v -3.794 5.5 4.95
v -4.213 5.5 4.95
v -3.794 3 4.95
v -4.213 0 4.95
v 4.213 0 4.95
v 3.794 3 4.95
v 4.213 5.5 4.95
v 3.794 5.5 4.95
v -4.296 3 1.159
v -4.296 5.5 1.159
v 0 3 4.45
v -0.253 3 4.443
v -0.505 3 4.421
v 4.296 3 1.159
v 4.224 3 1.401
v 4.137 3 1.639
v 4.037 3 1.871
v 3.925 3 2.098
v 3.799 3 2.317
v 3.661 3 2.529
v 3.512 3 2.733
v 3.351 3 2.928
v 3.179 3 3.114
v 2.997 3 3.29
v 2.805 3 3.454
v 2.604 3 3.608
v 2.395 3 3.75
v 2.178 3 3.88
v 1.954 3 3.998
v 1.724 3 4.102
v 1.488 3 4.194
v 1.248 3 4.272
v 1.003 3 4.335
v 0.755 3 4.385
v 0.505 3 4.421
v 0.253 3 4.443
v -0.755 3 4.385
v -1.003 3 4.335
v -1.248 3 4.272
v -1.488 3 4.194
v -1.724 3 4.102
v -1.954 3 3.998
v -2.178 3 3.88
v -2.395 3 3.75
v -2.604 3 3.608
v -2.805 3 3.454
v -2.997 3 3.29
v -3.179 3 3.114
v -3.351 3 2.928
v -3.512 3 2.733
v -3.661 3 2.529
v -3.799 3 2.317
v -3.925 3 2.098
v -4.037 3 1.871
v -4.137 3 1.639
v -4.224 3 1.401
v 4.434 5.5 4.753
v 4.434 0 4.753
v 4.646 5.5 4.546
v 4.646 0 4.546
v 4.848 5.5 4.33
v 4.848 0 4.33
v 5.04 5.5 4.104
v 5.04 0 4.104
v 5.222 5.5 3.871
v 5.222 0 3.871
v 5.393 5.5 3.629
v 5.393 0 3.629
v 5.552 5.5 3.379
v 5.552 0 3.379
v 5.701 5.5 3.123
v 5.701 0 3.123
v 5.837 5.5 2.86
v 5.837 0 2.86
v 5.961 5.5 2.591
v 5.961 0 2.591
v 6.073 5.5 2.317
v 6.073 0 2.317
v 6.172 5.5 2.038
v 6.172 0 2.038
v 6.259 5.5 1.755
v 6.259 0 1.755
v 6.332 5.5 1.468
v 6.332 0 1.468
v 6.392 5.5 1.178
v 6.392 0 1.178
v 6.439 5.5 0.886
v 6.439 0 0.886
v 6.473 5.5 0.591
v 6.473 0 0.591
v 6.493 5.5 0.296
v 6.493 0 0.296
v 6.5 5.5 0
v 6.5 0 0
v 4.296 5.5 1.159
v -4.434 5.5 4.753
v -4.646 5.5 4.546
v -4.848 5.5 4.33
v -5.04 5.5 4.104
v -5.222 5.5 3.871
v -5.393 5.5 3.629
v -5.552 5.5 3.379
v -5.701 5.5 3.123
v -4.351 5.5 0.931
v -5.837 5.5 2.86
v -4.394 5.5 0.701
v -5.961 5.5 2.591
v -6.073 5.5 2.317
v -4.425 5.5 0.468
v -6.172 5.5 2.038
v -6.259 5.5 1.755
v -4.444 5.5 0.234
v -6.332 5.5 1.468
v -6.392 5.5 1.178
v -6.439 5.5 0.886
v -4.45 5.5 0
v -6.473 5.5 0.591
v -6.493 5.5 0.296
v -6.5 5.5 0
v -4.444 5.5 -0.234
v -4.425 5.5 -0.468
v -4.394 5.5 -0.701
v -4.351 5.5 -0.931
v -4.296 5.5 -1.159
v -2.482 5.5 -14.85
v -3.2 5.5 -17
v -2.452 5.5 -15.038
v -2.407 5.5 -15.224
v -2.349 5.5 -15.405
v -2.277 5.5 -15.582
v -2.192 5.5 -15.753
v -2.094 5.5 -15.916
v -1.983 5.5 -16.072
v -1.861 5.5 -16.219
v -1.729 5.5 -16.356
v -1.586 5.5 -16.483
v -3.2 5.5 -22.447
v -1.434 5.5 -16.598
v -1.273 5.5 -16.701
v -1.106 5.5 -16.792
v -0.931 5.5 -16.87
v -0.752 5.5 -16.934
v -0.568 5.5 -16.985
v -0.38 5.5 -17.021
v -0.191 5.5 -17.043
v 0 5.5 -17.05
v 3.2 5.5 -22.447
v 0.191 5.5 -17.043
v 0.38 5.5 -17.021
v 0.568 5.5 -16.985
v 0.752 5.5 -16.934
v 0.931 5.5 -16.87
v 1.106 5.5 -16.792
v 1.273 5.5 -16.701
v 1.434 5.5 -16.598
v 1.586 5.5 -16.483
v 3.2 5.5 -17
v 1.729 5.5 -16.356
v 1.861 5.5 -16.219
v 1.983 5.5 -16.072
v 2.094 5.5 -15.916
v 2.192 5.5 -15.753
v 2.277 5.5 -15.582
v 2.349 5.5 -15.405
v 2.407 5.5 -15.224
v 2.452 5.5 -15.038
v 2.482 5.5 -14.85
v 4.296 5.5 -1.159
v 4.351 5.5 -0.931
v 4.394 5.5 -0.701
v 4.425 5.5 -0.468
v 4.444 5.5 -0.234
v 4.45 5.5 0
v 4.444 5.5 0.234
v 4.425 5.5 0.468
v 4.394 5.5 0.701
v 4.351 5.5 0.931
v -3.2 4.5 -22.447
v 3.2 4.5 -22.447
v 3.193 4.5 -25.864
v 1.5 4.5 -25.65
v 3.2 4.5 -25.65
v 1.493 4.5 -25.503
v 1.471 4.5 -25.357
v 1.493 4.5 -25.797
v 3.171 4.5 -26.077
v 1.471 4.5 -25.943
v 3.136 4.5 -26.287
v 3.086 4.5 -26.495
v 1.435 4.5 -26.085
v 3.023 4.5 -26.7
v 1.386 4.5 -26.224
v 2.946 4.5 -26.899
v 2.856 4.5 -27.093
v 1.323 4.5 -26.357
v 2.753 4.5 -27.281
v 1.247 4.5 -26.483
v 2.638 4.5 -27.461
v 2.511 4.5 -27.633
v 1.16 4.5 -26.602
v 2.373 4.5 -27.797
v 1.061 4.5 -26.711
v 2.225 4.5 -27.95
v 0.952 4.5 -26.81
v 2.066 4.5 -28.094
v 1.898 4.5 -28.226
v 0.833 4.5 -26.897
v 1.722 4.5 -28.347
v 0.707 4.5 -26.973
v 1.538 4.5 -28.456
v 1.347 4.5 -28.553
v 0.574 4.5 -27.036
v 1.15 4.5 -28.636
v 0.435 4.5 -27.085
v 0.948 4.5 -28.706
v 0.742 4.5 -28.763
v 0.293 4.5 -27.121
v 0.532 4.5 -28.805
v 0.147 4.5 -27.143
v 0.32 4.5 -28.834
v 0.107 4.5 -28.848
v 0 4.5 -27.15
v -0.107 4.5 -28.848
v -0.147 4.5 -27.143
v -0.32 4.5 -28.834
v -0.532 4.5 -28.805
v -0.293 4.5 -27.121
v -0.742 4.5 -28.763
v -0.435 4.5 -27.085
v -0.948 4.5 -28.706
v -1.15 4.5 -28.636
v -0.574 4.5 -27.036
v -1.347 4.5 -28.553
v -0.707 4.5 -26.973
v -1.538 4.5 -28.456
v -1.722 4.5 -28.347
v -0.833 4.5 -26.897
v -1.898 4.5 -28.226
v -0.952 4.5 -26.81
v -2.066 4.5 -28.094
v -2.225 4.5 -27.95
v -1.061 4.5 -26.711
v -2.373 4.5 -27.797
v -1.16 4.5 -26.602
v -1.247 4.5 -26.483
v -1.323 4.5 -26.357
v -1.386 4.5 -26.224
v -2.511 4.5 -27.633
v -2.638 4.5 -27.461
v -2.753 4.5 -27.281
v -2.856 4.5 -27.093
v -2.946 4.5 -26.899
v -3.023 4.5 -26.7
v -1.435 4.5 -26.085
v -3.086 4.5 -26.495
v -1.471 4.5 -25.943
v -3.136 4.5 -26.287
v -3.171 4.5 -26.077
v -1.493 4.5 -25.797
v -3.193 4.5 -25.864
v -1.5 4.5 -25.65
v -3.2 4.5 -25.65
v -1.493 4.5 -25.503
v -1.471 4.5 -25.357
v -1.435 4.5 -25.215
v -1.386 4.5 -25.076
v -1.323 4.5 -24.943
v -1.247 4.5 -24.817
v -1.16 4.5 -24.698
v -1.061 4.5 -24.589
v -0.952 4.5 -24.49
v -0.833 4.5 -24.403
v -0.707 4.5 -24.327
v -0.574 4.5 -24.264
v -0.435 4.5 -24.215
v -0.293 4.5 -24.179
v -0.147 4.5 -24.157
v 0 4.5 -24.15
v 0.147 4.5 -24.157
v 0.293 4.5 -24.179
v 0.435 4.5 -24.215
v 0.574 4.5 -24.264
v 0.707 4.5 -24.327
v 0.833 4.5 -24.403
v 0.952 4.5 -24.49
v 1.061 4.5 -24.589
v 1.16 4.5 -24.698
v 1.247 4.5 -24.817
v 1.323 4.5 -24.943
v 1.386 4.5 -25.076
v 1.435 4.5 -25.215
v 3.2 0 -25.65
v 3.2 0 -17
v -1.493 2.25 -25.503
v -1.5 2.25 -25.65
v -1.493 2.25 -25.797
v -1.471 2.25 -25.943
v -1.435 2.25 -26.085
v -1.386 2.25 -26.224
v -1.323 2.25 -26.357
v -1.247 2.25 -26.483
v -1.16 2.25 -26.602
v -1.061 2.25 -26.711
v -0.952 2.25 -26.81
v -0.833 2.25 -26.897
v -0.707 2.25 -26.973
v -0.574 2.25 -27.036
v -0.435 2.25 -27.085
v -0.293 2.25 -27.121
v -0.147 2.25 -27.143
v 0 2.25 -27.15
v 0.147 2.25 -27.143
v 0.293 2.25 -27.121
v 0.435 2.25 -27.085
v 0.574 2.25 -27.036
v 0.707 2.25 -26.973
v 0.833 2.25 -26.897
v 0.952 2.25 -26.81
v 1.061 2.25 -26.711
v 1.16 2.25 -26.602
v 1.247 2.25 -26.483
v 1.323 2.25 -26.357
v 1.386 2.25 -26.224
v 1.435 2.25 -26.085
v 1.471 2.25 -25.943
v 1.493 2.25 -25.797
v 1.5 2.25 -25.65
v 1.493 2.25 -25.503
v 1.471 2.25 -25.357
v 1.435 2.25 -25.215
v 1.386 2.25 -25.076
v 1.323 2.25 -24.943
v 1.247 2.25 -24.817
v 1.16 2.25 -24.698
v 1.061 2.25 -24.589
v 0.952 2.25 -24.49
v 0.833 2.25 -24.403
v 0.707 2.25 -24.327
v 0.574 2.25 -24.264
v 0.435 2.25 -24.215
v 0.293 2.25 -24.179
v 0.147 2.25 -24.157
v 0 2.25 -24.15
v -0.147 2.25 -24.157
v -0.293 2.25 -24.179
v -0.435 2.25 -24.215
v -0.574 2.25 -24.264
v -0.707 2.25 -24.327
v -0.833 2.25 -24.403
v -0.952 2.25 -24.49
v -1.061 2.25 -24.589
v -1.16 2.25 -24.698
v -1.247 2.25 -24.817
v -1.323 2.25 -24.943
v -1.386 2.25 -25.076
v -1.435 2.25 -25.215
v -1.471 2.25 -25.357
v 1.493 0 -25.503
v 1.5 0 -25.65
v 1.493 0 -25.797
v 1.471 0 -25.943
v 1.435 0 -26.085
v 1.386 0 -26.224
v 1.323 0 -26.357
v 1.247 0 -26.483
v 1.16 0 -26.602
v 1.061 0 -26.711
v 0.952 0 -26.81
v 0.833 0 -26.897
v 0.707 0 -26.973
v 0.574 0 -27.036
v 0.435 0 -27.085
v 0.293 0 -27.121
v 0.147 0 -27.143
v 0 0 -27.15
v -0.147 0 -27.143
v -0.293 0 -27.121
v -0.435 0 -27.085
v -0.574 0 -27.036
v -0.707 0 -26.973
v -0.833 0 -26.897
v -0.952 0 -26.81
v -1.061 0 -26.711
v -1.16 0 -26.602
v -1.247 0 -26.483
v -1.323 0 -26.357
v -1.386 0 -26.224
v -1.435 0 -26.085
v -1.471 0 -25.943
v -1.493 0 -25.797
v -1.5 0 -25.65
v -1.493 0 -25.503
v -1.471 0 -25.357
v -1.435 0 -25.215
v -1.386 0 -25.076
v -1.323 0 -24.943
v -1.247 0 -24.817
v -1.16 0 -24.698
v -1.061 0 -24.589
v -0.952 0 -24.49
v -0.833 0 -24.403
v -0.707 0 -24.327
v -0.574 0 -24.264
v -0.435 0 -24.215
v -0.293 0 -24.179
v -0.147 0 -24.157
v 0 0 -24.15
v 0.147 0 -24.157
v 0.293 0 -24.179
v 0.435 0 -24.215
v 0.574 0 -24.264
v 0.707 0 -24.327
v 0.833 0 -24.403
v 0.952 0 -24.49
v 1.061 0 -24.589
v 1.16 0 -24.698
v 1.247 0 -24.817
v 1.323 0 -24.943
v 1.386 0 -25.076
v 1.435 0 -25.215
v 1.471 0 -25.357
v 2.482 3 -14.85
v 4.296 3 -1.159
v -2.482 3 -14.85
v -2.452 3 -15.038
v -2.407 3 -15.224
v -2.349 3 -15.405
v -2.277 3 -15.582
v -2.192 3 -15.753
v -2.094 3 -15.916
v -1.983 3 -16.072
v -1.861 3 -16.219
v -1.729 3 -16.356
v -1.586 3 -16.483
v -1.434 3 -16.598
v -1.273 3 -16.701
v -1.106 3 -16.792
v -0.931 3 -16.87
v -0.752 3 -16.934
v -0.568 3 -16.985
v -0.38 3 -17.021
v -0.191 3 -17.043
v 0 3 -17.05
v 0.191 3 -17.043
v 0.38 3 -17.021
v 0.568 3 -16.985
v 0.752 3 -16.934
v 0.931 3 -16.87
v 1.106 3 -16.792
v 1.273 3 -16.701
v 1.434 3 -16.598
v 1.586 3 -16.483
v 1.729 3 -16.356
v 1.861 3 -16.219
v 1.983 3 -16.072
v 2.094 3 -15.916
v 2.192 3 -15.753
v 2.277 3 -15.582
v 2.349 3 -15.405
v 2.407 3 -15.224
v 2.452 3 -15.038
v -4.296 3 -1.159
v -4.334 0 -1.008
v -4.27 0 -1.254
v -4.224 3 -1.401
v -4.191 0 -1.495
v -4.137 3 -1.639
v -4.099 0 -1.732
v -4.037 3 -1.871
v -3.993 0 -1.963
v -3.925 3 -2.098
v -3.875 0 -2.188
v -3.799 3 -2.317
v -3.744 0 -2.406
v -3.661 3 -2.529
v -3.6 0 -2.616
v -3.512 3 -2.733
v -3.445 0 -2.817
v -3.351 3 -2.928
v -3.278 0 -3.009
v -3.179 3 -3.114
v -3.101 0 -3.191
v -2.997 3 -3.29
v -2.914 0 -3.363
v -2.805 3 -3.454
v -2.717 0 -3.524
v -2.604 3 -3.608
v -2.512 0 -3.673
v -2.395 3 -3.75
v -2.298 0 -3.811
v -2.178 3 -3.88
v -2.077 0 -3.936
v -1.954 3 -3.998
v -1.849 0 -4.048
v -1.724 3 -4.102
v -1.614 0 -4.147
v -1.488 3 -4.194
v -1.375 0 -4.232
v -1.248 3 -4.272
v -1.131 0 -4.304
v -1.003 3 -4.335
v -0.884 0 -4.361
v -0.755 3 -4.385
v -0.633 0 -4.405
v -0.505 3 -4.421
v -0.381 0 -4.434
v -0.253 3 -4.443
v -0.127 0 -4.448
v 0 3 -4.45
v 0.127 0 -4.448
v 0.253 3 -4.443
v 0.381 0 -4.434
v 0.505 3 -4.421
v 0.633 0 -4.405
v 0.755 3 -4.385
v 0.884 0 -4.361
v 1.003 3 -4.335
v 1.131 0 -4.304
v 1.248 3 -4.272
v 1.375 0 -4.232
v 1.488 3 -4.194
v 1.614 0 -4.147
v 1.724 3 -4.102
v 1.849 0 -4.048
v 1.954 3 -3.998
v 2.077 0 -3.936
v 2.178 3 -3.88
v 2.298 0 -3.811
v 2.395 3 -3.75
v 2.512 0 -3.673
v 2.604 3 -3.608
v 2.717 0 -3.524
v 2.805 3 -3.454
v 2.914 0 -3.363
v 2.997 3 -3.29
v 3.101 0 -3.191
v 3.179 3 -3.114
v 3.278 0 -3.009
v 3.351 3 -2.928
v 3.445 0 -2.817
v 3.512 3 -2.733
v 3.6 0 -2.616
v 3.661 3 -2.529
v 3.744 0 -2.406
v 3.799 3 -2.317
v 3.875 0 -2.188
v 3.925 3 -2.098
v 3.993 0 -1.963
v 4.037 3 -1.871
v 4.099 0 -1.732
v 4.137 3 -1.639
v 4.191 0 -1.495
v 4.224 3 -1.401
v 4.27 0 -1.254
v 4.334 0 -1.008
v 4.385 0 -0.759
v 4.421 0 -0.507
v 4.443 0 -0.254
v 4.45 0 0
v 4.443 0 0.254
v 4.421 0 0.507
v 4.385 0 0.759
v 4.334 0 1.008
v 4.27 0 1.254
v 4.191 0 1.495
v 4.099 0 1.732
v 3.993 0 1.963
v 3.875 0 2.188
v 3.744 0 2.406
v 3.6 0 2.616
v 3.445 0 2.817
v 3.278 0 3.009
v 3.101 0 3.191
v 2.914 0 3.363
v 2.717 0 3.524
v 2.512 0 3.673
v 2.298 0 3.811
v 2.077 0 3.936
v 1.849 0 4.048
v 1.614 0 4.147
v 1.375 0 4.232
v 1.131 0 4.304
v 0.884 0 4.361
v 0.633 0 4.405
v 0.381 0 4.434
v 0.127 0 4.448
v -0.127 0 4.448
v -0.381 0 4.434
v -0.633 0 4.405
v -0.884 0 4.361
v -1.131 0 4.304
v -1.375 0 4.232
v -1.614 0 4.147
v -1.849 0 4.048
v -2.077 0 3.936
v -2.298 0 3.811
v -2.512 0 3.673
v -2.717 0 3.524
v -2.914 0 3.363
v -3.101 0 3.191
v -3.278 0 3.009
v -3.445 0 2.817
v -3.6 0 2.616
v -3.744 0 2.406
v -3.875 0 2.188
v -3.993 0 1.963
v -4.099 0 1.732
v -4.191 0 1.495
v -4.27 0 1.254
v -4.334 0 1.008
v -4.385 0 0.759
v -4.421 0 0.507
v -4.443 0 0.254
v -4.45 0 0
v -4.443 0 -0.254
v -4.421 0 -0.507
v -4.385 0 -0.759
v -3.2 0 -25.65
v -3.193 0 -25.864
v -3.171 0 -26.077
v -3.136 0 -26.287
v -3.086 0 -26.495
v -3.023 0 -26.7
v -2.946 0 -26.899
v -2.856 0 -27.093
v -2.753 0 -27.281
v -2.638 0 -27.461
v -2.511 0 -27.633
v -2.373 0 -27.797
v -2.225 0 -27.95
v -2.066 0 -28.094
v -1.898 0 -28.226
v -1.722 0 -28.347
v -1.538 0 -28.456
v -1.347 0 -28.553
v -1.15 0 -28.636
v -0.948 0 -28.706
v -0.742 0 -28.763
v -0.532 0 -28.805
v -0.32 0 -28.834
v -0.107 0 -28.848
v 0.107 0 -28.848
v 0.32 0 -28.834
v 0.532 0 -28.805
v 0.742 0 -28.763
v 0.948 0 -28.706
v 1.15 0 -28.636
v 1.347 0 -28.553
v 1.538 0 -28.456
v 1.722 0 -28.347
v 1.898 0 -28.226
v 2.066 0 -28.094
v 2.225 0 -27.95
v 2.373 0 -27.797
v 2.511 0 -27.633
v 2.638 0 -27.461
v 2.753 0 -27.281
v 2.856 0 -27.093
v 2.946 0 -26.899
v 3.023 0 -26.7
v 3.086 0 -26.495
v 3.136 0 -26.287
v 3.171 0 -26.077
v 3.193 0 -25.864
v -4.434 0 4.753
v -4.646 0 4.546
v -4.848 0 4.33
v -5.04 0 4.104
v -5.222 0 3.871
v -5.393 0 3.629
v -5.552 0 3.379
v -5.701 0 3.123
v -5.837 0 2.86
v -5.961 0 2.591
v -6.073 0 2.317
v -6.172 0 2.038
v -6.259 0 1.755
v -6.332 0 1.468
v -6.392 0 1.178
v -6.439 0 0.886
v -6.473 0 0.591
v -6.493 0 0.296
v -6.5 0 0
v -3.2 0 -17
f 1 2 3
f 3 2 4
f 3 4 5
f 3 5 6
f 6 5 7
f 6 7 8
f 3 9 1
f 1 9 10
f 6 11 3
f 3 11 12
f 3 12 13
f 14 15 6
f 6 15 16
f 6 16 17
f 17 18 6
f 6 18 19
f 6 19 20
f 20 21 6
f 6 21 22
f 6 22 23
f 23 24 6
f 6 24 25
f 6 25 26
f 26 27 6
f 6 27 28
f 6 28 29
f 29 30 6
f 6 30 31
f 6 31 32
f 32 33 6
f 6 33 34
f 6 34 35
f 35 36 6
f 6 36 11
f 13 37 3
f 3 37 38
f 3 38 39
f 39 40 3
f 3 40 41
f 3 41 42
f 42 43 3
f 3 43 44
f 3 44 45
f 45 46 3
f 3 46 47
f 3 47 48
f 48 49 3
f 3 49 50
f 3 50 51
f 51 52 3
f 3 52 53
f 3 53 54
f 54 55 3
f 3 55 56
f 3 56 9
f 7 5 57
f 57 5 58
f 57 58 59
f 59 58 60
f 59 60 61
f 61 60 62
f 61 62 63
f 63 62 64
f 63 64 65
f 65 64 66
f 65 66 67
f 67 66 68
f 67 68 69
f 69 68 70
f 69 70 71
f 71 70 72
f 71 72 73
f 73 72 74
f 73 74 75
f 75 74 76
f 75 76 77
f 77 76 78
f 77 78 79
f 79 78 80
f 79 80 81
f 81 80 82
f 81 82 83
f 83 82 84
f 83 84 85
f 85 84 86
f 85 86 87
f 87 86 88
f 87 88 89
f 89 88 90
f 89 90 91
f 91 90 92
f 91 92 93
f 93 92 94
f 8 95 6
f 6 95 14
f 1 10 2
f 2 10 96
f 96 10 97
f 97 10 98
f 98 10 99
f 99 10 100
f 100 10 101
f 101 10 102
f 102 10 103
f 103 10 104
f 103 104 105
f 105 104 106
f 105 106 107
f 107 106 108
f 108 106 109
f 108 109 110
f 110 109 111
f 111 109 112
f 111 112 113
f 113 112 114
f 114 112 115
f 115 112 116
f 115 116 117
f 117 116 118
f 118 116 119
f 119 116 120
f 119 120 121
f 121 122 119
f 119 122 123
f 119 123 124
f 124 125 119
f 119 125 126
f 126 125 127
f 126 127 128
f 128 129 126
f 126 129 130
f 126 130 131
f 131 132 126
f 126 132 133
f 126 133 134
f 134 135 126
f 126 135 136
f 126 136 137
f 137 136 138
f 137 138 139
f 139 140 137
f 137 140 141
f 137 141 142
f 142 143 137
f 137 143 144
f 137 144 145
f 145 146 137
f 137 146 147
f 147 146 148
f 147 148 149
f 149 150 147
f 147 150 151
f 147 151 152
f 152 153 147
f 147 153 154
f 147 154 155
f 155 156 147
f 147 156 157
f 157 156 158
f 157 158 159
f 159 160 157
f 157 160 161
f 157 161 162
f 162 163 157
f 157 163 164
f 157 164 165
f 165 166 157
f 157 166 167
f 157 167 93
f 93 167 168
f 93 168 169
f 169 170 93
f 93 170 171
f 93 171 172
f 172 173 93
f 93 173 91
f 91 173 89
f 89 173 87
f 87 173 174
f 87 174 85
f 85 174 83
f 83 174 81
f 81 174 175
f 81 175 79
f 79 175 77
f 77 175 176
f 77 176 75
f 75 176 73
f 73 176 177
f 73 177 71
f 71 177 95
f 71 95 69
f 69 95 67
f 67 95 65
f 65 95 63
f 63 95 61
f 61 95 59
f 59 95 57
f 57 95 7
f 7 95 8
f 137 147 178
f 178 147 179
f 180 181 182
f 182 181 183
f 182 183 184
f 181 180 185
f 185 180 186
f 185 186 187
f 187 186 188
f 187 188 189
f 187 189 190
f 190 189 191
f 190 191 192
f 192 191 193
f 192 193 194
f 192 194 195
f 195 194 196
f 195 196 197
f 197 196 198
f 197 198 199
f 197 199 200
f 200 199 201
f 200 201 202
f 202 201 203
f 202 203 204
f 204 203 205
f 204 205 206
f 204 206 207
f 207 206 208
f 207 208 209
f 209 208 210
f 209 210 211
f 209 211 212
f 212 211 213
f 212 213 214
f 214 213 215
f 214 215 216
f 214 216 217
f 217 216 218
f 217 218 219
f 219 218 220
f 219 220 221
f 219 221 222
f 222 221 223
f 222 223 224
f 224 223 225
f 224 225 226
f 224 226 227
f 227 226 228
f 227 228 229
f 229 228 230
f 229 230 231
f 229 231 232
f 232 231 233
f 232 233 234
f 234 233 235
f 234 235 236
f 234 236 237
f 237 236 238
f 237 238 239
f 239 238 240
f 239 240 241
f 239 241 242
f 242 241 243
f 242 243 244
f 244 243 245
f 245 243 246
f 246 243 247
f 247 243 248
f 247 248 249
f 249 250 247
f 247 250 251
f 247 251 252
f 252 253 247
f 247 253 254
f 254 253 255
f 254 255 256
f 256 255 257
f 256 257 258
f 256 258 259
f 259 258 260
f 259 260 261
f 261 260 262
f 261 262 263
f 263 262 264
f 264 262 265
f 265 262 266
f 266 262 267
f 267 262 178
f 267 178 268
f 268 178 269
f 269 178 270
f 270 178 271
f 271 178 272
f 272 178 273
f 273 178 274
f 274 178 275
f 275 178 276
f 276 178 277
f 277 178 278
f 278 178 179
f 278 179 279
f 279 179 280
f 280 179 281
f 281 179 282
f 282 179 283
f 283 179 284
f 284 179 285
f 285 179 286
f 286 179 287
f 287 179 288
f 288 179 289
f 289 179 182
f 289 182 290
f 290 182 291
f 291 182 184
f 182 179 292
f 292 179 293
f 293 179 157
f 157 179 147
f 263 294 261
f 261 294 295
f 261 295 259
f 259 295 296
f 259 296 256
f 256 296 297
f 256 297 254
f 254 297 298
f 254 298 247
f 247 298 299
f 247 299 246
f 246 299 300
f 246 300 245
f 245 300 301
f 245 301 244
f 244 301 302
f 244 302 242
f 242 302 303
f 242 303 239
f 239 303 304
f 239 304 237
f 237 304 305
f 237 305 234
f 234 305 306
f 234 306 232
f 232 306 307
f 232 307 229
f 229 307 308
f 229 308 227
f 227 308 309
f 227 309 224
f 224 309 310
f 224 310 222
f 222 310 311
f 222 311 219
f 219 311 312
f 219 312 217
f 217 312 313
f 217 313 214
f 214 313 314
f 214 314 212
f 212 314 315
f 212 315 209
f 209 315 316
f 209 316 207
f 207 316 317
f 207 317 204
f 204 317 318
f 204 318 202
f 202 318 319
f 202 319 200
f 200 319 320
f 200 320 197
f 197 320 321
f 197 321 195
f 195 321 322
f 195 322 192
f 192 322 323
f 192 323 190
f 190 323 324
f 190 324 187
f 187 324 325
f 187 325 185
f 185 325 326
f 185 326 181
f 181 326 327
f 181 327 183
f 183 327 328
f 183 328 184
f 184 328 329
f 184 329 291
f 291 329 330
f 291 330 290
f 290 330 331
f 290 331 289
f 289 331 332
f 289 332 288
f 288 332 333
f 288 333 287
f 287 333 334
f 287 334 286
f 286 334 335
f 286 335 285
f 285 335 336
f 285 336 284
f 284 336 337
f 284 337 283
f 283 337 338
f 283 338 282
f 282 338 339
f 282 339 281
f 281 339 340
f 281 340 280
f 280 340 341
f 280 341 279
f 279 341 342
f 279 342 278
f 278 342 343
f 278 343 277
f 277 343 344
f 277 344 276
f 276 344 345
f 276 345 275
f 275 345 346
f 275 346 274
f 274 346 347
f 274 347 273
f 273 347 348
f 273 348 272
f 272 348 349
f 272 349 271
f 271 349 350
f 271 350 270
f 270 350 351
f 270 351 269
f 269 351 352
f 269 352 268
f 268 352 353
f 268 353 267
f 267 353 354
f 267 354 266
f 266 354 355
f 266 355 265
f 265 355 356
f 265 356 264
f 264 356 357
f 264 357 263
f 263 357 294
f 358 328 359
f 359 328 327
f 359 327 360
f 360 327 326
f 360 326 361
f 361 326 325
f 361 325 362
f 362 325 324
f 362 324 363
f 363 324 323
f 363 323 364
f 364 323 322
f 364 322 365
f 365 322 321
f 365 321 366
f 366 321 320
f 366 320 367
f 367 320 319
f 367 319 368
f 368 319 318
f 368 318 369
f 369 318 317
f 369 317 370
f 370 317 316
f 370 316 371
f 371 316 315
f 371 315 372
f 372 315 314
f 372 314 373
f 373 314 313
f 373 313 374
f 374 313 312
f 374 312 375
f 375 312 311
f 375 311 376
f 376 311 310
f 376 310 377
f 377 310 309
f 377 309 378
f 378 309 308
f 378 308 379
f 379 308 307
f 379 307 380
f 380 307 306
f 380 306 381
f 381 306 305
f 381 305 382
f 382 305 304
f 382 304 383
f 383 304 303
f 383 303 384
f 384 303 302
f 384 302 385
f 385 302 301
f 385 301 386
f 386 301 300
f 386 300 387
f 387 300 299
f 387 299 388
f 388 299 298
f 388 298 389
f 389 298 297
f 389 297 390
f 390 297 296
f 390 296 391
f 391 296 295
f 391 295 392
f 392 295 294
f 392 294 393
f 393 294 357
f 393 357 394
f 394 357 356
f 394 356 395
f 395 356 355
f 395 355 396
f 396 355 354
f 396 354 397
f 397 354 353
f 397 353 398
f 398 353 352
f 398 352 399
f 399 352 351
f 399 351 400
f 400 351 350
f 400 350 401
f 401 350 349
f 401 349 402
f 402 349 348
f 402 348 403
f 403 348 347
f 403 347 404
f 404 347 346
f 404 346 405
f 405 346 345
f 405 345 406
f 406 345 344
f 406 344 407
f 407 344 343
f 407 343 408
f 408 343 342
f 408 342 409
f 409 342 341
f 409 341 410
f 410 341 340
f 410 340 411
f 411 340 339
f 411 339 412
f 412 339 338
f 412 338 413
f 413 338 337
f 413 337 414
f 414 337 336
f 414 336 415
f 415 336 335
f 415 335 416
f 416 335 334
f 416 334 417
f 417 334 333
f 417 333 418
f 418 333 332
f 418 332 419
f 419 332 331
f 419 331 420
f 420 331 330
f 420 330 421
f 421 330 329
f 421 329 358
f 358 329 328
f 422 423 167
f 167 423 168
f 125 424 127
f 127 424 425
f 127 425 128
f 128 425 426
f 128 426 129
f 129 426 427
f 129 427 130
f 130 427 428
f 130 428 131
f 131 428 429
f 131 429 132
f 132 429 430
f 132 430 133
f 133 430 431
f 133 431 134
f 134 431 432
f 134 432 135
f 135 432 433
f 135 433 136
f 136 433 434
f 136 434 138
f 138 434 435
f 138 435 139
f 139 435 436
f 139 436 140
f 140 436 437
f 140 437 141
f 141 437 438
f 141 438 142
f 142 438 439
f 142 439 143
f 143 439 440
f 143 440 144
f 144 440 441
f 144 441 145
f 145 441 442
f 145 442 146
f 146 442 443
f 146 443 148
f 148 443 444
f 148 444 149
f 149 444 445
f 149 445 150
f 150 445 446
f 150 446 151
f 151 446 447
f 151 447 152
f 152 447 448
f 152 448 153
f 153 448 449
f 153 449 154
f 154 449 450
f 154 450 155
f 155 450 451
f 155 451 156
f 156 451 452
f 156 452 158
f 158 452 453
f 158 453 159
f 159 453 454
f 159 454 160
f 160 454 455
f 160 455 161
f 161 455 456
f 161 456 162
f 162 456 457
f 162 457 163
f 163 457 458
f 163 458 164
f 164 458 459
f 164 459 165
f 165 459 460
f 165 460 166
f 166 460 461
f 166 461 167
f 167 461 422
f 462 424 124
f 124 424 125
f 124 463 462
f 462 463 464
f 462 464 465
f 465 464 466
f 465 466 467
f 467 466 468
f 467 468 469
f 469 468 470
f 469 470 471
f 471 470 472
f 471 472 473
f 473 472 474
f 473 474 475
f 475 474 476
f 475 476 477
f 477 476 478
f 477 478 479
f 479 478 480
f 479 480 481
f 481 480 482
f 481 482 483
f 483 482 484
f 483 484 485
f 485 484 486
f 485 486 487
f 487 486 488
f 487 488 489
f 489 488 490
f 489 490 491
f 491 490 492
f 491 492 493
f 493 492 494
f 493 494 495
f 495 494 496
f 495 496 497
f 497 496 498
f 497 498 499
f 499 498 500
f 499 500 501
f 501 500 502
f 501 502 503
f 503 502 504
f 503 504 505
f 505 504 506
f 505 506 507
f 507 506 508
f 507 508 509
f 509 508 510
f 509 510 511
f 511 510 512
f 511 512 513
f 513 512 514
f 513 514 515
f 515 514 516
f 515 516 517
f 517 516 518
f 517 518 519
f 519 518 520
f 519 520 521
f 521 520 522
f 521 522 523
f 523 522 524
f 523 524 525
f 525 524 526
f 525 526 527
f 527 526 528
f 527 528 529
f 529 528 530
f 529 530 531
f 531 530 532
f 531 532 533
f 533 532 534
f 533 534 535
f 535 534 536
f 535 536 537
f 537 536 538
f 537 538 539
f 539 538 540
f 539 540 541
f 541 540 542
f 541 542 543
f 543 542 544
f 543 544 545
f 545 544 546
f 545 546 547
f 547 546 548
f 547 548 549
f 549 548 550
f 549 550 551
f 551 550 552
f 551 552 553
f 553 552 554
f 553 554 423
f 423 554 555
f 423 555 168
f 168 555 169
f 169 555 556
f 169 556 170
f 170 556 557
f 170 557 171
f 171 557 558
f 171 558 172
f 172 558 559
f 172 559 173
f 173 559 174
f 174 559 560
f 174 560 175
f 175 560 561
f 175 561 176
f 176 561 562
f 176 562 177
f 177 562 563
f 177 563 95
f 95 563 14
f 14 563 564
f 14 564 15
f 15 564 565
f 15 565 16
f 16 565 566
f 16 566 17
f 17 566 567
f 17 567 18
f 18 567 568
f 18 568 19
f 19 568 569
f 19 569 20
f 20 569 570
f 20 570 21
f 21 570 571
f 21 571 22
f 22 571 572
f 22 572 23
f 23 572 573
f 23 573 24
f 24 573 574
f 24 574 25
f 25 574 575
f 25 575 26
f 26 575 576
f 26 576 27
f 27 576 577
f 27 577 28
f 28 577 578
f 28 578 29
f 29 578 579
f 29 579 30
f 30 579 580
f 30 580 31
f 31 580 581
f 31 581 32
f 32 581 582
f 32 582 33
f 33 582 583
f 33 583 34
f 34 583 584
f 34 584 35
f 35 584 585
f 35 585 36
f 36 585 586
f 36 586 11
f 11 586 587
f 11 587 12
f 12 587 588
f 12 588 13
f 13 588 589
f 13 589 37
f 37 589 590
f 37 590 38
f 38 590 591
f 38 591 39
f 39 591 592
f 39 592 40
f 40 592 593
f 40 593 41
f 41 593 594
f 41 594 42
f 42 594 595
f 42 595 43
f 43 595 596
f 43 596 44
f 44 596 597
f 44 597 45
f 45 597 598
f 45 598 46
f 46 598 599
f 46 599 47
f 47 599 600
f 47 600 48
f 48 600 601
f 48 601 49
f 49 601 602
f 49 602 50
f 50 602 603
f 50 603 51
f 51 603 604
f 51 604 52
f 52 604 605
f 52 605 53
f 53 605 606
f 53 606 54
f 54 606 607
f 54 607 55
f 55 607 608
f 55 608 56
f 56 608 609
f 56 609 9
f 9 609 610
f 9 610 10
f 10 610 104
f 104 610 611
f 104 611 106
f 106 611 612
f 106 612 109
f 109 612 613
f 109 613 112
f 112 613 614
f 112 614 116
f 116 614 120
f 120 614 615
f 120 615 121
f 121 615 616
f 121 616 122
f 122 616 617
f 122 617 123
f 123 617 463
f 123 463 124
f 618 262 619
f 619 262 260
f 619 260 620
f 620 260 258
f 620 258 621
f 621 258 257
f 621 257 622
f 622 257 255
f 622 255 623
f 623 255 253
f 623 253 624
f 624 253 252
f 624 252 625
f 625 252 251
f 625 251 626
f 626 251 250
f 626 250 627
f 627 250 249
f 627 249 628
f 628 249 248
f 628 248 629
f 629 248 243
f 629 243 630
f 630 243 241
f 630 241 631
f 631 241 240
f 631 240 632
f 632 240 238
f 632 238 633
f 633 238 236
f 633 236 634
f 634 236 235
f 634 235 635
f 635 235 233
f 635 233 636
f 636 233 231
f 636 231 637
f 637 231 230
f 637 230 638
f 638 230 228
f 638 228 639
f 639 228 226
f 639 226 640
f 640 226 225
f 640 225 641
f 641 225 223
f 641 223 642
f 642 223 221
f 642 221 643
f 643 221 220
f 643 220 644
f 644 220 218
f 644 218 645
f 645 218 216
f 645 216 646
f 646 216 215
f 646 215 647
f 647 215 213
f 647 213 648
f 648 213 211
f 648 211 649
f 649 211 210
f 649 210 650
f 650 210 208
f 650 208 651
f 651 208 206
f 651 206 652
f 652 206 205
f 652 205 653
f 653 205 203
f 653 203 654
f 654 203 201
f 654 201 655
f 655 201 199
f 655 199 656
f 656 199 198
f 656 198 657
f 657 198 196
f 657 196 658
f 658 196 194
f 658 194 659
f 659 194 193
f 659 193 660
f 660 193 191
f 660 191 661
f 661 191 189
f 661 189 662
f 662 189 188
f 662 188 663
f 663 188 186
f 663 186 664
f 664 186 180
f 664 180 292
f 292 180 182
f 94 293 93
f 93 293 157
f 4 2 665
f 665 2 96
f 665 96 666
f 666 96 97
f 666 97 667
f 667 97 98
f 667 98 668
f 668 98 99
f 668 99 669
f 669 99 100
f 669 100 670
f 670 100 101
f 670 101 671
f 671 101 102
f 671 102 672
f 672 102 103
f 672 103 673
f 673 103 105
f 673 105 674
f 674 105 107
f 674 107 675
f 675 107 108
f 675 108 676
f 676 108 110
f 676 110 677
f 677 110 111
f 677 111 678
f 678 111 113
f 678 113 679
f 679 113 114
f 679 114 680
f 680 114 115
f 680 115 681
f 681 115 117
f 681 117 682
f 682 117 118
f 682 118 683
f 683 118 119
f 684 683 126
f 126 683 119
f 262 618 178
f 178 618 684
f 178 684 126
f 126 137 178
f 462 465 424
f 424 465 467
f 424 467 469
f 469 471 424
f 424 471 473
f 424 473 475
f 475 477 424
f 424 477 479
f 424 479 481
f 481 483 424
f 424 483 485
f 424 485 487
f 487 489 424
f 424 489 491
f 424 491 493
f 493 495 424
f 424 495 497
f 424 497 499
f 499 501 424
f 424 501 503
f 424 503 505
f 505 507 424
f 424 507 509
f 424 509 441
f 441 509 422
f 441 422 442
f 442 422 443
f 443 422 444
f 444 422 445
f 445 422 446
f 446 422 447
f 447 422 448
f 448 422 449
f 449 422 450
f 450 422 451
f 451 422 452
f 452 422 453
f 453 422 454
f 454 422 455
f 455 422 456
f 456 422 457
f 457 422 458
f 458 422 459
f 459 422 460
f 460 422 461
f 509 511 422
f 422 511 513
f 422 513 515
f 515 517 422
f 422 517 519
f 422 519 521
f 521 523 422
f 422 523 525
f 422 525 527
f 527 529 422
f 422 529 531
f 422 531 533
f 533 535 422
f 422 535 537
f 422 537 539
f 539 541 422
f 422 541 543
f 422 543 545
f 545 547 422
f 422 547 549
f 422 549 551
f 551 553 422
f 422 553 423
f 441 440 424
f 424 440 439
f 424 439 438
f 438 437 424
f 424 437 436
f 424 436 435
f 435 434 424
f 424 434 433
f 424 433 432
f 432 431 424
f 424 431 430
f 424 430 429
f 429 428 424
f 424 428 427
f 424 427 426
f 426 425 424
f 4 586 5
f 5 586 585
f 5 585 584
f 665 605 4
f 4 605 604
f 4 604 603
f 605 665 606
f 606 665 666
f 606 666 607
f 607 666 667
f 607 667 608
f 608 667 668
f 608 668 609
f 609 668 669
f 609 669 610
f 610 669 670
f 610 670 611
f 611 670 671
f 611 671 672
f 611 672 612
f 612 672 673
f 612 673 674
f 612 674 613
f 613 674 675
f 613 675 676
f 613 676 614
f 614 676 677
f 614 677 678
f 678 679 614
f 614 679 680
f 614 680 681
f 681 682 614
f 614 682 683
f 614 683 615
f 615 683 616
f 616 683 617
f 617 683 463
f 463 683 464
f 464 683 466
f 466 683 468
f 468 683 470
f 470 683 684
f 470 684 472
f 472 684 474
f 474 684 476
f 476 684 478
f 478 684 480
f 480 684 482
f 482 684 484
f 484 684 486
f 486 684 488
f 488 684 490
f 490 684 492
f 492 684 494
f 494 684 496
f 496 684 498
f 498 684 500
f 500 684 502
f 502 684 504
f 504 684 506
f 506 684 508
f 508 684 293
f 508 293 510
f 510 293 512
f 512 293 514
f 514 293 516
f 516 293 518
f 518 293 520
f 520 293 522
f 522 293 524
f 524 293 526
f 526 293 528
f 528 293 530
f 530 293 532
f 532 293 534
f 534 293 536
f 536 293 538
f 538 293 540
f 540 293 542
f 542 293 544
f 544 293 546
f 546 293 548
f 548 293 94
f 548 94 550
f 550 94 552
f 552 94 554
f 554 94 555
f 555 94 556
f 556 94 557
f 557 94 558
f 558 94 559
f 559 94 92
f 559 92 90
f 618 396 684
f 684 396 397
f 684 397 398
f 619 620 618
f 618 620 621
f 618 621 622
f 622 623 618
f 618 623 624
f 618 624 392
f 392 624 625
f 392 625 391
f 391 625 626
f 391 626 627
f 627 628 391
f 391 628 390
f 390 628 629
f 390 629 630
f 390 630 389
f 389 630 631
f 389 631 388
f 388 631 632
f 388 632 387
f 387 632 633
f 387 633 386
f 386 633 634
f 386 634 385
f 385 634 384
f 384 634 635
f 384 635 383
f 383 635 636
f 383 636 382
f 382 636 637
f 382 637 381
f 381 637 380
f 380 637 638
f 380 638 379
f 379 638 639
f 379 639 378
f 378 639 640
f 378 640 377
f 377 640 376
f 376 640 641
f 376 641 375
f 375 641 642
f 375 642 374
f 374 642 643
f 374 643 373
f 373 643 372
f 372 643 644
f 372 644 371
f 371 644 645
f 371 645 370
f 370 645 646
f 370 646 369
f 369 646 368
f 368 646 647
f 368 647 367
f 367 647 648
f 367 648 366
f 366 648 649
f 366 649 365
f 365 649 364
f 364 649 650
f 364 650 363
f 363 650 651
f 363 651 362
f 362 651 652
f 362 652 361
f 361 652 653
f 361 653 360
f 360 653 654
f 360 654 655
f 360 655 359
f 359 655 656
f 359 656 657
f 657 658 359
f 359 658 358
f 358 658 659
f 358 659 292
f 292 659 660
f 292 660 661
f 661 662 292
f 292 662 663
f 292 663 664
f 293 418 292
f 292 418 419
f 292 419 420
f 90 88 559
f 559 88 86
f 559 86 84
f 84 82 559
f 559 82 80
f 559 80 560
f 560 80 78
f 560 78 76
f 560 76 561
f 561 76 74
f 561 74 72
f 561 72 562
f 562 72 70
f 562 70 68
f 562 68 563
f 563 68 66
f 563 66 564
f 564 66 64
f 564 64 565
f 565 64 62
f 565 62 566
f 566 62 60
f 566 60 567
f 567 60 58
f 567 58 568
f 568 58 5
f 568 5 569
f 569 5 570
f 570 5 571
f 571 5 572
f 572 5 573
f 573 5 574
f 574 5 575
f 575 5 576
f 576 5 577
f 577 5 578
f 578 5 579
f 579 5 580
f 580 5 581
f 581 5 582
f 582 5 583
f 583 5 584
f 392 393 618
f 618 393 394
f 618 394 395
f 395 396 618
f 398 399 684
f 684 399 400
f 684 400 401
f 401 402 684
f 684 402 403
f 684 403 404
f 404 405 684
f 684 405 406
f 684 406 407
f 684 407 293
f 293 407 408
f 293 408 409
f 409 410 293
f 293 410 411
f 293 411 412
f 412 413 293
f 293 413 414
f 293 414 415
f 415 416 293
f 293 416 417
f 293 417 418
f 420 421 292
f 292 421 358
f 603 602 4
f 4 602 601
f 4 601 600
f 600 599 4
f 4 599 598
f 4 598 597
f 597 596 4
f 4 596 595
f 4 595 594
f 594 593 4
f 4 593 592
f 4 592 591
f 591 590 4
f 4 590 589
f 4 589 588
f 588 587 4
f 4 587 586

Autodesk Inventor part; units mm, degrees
ref_plane "YZ Plane" through (0, 0, 0) normal (1, 0, 0) x (0, 1, 0)
ref_plane "XZ Plane" through (0, 0, 0) normal (0, 1, 0) x (-1, 0, 0)
ref_plane "XY Plane" through (0, 0, 0) normal (0, 0, 1) x (1, 0, 0)
sketch "Skizze1" plane through (0, 0, 0) normal (0, 1, 0) x (-1, 0, 0)
  circle A0 centre (0, 0) radius 4.45
  arc A1 (6.5, 0) -> (-6.5, 0) centre (0, 0) ccw
  line L0 (0, 0) -> (0, -17)
  line L1 (4, -14) -> (23.7753, -14) construction
  line L2 (0, 0) -> (0, -19.75)
  line L3 (0, 0) -> (0, -26.15)
  line L4 (0, 0) -> (0, -29.15)
  arc A2 (-3.2, -29.15) -> (3.2, -29.15) centre (0, -29.15) ccw
  line L5 (-3.2, -29.15) -> (-3.2, -24.95)
  line L6 (3.2, -29.15) -> (3.2, -26.15)
  line L7 (3.2, -26.15) -> (3.2, -17)
  line L8 (-3.2, -24.95) -> (-3.2, -23.5465)
  line L9 (-3.2, -23.5465) -> (-3.2, -17)
  line L10 (-3.2, -17) -> (-6.5, 0)
  line L11 (6.5, 0) -> (3.2, -17)
  line L12 (0, -29.15) -> (0, -25.65)
  arc A3 (-3.2, -25.65) -> (3.2, -25.65) centre (0, -25.65) ccw
  point P0 (3.2, -25.65)
  dimension "d0" = 8.9
  dimension "d1" = 13
  dimension "d2" = 17
  dimension "d27" = 6.4
  dimension "d35" = 3.5
extrude "Extrusion1" add sketch "Skizze1" along normal blind 3 contours A3 L5 L8 L9 L10 A1 L11 L7
sketch "Skizze2" plane through (0, 3, 0) normal (0, 1, 0) x (1, 0, 0)
  arc A0 (-6.5, 0) -> (6.5, 0) centre (0, 0) ccw projected
  line L0 (-3.2, 17) -> (-3.2, 19.75)
  line L1 (3.2, 17) -> (3.2, 19.75)
  line L2 (3.2, 26.15) -> (3.2, 19.75)
  line L3 (-3.2, 26.15) -> (-3.2, 19.75)
  arc A1 (3.2, 29.15) -> (-3.2, 29.15) centre (0, 29.15) ccw
  line L4 (3.2, 26.15) -> (3.2, 29.15)
  line L5 (-3.2, 26.15) -> (-3.2, 29.15)
  arc A2 (-6.5, 0) -> (6.5, 0) centre (0, 0) ccw
  line L6 (-3.2, 29.15) -> (-3.2, 17) projected
  line L7 (-6.5, 0) -> (-3.2, 17)
  line L8 (6.5, 0) -> (3.2, 17) projected
  line L9 (6.5, 0) -> (3.2, 17)
  circle A3 centre (0, 0) radius 4.45
  circle A4 centre (0, 0) radius 4.45 projected
  line L10 (0, -4.45) -> (0, 14.55)
  arc A5 (2.482, 14.8497) -> (-2.482, 14.8497) centre (0, 14.55) ccw
  line L11 (-4.45, 0) -> (-2.4744, 14.9071)
  line L12 (4.45, 0) -> (2.4744, 14.9071)
  line L13 (-4.45, 0) -> (4.45, 0)
  line L14 (-4.45, 0) -> (-3.746, -5.312)
  line L15 (4.45, 0) -> (3.746, -5.312)
  arc A6 (3.2, 29.15) -> (-3.2, 29.15) centre (0, 29.15) ccw projected
  arc A7 (3.2, 25.65) -> (-3.2, 25.65) centre (0, 25.65) ccw projected
  arc A8 (3.2, 25.65) -> (-3.2, 25.65) centre (0, 25.65) ccw
  point P0 (-4.0763, 3.9842)
  point P1 (-5.7, 0)
  point P2 (0, 19.75)
  point P3 (-3.2, 26.15)
  point P4 (-2.4744, -14.9071)
  point P5 (2.4744, -14.9071)
  point P6 (-4.2964, -1.1592)
  point P7 (-4.2964, 1.1592)
  point P8 (4.2964, 1.1592)
  point P9 (4.2964, -1.1592)
  point P10 (3.2, 17)
  point P11 (-3.2, 26.65)
  point P12 (3.2, 26.65)
  dimension "d30" = 19
  dimension "d31" = 5
extrude "Extrusion2" add sketch "Skizze2" along normal blind 2.5 contours L7 L0 L3 A7 L2 L1 L8 A0 L15 A3 L12 A5 L11 L14
sketch "Skizze5" plane through (0, 0, 0) normal (0, -1, 0) x (1, 0, 0)
  line L0 (0, 0) -> (0, -29.15)
  circle A0 centre (0, -29.15) radius 1.5
  arc A1 (-3.2, -25.65) -> (3.2, -25.65) centre (0, -25.65) ccw projected
  line L1 (0, -29.15) -> (0, -25.65)
  circle A2 centre (0, -25.65) radius 1.5
  point P0 (-3.2, -26.65)
  dimension "d20" = 29.15
  dimension "d21" = 3
  dimension "d40" = 3.5
  dimension "d41" = 3
extrude "Extrusion5" cut sketch "Skizze5" against normal blind 6 contours A2 L0 | L0 A2
sketch "Skizze6" plane through (0, 5.5, 0) normal (0, 1, 0) x (1, 0, 0)
  arc A0 (3.2, 29.15) -> (-3.2, 29.15) centre (0, 29.15) ccw
  line L0 (-3.2, 29.15) -> (-3.2, 14) projected
  line L1 (-3.2, 29.15) -> (-3.2, 25.9472)
  arc A1 (3.2, 29.15) -> (-3.2, 29.15) centre (0, 29.15) ccw projected
  line L2 (3.2, 29.15) -> (3.2, 25.9472)
  line L3 (-3.2, 25.9472) -> (-3.2, 23.4472)
  line L4 (-3.2, 25.65) -> (-3.2, 17) projected
  line L5 (3.2, 17) -> (3.2, 25.65) projected
  arc A2 (3.2, 25.65) -> (-3.2, 25.65) centre (0, 25.65) ccw projected
  arc A3 (3.2, 26.65) -> (-3.2, 26.65) centre (0, 26.65) ccw
  line L6 (3.2, 17) -> (3.2, 25.65) projected
  line L7 (3.2, 26.65) -> (3.2, 23.4472)
  line L8 (-3.2, 23.4472) -> (-3.2, 22.4472)
  line L9 (-3.2, 25.65) -> (-3.2, 17) projected
  line L10 (-3.2, 22.4472) -> (3.2, 22.4472)
  line L11 (3.2, 23.4472) -> (3.2, 22.4472)
  point P0 (0, 0)
  dimension "d38" = 2.5
  dimension "d43" = 1
extrude "Extrusion6" cut sketch "Skizze6" against normal blind 1
sketch "Skizze7" plane through (0, 0, 0) normal (0, -1, 0) x (1, 0, 0)
  circle A0 centre (0, 0) radius 4.45 projected
  line L0 (-6.6957, 4.45) -> (-6.6957, 6.6948)
  line L1 (-6.6957, 6.6948) -> (6.8805, 6.6948)
  line L2 (6.8805, 6.6948) -> (6.8805, 4.45)
  line L3 (6.8805, 4.45) -> (6.8805, 4.95)
  line L4 (6.8805, 4.95) -> (-6.6957, 4.95)
  dimension "d34" = 0.5
extrude "Extrusion7" cut sketch "Skizze7" against normal blind 20 contours L0 L1 L2 L4
properties part number "Servo_Exzenter_Smart_Neu_2"
